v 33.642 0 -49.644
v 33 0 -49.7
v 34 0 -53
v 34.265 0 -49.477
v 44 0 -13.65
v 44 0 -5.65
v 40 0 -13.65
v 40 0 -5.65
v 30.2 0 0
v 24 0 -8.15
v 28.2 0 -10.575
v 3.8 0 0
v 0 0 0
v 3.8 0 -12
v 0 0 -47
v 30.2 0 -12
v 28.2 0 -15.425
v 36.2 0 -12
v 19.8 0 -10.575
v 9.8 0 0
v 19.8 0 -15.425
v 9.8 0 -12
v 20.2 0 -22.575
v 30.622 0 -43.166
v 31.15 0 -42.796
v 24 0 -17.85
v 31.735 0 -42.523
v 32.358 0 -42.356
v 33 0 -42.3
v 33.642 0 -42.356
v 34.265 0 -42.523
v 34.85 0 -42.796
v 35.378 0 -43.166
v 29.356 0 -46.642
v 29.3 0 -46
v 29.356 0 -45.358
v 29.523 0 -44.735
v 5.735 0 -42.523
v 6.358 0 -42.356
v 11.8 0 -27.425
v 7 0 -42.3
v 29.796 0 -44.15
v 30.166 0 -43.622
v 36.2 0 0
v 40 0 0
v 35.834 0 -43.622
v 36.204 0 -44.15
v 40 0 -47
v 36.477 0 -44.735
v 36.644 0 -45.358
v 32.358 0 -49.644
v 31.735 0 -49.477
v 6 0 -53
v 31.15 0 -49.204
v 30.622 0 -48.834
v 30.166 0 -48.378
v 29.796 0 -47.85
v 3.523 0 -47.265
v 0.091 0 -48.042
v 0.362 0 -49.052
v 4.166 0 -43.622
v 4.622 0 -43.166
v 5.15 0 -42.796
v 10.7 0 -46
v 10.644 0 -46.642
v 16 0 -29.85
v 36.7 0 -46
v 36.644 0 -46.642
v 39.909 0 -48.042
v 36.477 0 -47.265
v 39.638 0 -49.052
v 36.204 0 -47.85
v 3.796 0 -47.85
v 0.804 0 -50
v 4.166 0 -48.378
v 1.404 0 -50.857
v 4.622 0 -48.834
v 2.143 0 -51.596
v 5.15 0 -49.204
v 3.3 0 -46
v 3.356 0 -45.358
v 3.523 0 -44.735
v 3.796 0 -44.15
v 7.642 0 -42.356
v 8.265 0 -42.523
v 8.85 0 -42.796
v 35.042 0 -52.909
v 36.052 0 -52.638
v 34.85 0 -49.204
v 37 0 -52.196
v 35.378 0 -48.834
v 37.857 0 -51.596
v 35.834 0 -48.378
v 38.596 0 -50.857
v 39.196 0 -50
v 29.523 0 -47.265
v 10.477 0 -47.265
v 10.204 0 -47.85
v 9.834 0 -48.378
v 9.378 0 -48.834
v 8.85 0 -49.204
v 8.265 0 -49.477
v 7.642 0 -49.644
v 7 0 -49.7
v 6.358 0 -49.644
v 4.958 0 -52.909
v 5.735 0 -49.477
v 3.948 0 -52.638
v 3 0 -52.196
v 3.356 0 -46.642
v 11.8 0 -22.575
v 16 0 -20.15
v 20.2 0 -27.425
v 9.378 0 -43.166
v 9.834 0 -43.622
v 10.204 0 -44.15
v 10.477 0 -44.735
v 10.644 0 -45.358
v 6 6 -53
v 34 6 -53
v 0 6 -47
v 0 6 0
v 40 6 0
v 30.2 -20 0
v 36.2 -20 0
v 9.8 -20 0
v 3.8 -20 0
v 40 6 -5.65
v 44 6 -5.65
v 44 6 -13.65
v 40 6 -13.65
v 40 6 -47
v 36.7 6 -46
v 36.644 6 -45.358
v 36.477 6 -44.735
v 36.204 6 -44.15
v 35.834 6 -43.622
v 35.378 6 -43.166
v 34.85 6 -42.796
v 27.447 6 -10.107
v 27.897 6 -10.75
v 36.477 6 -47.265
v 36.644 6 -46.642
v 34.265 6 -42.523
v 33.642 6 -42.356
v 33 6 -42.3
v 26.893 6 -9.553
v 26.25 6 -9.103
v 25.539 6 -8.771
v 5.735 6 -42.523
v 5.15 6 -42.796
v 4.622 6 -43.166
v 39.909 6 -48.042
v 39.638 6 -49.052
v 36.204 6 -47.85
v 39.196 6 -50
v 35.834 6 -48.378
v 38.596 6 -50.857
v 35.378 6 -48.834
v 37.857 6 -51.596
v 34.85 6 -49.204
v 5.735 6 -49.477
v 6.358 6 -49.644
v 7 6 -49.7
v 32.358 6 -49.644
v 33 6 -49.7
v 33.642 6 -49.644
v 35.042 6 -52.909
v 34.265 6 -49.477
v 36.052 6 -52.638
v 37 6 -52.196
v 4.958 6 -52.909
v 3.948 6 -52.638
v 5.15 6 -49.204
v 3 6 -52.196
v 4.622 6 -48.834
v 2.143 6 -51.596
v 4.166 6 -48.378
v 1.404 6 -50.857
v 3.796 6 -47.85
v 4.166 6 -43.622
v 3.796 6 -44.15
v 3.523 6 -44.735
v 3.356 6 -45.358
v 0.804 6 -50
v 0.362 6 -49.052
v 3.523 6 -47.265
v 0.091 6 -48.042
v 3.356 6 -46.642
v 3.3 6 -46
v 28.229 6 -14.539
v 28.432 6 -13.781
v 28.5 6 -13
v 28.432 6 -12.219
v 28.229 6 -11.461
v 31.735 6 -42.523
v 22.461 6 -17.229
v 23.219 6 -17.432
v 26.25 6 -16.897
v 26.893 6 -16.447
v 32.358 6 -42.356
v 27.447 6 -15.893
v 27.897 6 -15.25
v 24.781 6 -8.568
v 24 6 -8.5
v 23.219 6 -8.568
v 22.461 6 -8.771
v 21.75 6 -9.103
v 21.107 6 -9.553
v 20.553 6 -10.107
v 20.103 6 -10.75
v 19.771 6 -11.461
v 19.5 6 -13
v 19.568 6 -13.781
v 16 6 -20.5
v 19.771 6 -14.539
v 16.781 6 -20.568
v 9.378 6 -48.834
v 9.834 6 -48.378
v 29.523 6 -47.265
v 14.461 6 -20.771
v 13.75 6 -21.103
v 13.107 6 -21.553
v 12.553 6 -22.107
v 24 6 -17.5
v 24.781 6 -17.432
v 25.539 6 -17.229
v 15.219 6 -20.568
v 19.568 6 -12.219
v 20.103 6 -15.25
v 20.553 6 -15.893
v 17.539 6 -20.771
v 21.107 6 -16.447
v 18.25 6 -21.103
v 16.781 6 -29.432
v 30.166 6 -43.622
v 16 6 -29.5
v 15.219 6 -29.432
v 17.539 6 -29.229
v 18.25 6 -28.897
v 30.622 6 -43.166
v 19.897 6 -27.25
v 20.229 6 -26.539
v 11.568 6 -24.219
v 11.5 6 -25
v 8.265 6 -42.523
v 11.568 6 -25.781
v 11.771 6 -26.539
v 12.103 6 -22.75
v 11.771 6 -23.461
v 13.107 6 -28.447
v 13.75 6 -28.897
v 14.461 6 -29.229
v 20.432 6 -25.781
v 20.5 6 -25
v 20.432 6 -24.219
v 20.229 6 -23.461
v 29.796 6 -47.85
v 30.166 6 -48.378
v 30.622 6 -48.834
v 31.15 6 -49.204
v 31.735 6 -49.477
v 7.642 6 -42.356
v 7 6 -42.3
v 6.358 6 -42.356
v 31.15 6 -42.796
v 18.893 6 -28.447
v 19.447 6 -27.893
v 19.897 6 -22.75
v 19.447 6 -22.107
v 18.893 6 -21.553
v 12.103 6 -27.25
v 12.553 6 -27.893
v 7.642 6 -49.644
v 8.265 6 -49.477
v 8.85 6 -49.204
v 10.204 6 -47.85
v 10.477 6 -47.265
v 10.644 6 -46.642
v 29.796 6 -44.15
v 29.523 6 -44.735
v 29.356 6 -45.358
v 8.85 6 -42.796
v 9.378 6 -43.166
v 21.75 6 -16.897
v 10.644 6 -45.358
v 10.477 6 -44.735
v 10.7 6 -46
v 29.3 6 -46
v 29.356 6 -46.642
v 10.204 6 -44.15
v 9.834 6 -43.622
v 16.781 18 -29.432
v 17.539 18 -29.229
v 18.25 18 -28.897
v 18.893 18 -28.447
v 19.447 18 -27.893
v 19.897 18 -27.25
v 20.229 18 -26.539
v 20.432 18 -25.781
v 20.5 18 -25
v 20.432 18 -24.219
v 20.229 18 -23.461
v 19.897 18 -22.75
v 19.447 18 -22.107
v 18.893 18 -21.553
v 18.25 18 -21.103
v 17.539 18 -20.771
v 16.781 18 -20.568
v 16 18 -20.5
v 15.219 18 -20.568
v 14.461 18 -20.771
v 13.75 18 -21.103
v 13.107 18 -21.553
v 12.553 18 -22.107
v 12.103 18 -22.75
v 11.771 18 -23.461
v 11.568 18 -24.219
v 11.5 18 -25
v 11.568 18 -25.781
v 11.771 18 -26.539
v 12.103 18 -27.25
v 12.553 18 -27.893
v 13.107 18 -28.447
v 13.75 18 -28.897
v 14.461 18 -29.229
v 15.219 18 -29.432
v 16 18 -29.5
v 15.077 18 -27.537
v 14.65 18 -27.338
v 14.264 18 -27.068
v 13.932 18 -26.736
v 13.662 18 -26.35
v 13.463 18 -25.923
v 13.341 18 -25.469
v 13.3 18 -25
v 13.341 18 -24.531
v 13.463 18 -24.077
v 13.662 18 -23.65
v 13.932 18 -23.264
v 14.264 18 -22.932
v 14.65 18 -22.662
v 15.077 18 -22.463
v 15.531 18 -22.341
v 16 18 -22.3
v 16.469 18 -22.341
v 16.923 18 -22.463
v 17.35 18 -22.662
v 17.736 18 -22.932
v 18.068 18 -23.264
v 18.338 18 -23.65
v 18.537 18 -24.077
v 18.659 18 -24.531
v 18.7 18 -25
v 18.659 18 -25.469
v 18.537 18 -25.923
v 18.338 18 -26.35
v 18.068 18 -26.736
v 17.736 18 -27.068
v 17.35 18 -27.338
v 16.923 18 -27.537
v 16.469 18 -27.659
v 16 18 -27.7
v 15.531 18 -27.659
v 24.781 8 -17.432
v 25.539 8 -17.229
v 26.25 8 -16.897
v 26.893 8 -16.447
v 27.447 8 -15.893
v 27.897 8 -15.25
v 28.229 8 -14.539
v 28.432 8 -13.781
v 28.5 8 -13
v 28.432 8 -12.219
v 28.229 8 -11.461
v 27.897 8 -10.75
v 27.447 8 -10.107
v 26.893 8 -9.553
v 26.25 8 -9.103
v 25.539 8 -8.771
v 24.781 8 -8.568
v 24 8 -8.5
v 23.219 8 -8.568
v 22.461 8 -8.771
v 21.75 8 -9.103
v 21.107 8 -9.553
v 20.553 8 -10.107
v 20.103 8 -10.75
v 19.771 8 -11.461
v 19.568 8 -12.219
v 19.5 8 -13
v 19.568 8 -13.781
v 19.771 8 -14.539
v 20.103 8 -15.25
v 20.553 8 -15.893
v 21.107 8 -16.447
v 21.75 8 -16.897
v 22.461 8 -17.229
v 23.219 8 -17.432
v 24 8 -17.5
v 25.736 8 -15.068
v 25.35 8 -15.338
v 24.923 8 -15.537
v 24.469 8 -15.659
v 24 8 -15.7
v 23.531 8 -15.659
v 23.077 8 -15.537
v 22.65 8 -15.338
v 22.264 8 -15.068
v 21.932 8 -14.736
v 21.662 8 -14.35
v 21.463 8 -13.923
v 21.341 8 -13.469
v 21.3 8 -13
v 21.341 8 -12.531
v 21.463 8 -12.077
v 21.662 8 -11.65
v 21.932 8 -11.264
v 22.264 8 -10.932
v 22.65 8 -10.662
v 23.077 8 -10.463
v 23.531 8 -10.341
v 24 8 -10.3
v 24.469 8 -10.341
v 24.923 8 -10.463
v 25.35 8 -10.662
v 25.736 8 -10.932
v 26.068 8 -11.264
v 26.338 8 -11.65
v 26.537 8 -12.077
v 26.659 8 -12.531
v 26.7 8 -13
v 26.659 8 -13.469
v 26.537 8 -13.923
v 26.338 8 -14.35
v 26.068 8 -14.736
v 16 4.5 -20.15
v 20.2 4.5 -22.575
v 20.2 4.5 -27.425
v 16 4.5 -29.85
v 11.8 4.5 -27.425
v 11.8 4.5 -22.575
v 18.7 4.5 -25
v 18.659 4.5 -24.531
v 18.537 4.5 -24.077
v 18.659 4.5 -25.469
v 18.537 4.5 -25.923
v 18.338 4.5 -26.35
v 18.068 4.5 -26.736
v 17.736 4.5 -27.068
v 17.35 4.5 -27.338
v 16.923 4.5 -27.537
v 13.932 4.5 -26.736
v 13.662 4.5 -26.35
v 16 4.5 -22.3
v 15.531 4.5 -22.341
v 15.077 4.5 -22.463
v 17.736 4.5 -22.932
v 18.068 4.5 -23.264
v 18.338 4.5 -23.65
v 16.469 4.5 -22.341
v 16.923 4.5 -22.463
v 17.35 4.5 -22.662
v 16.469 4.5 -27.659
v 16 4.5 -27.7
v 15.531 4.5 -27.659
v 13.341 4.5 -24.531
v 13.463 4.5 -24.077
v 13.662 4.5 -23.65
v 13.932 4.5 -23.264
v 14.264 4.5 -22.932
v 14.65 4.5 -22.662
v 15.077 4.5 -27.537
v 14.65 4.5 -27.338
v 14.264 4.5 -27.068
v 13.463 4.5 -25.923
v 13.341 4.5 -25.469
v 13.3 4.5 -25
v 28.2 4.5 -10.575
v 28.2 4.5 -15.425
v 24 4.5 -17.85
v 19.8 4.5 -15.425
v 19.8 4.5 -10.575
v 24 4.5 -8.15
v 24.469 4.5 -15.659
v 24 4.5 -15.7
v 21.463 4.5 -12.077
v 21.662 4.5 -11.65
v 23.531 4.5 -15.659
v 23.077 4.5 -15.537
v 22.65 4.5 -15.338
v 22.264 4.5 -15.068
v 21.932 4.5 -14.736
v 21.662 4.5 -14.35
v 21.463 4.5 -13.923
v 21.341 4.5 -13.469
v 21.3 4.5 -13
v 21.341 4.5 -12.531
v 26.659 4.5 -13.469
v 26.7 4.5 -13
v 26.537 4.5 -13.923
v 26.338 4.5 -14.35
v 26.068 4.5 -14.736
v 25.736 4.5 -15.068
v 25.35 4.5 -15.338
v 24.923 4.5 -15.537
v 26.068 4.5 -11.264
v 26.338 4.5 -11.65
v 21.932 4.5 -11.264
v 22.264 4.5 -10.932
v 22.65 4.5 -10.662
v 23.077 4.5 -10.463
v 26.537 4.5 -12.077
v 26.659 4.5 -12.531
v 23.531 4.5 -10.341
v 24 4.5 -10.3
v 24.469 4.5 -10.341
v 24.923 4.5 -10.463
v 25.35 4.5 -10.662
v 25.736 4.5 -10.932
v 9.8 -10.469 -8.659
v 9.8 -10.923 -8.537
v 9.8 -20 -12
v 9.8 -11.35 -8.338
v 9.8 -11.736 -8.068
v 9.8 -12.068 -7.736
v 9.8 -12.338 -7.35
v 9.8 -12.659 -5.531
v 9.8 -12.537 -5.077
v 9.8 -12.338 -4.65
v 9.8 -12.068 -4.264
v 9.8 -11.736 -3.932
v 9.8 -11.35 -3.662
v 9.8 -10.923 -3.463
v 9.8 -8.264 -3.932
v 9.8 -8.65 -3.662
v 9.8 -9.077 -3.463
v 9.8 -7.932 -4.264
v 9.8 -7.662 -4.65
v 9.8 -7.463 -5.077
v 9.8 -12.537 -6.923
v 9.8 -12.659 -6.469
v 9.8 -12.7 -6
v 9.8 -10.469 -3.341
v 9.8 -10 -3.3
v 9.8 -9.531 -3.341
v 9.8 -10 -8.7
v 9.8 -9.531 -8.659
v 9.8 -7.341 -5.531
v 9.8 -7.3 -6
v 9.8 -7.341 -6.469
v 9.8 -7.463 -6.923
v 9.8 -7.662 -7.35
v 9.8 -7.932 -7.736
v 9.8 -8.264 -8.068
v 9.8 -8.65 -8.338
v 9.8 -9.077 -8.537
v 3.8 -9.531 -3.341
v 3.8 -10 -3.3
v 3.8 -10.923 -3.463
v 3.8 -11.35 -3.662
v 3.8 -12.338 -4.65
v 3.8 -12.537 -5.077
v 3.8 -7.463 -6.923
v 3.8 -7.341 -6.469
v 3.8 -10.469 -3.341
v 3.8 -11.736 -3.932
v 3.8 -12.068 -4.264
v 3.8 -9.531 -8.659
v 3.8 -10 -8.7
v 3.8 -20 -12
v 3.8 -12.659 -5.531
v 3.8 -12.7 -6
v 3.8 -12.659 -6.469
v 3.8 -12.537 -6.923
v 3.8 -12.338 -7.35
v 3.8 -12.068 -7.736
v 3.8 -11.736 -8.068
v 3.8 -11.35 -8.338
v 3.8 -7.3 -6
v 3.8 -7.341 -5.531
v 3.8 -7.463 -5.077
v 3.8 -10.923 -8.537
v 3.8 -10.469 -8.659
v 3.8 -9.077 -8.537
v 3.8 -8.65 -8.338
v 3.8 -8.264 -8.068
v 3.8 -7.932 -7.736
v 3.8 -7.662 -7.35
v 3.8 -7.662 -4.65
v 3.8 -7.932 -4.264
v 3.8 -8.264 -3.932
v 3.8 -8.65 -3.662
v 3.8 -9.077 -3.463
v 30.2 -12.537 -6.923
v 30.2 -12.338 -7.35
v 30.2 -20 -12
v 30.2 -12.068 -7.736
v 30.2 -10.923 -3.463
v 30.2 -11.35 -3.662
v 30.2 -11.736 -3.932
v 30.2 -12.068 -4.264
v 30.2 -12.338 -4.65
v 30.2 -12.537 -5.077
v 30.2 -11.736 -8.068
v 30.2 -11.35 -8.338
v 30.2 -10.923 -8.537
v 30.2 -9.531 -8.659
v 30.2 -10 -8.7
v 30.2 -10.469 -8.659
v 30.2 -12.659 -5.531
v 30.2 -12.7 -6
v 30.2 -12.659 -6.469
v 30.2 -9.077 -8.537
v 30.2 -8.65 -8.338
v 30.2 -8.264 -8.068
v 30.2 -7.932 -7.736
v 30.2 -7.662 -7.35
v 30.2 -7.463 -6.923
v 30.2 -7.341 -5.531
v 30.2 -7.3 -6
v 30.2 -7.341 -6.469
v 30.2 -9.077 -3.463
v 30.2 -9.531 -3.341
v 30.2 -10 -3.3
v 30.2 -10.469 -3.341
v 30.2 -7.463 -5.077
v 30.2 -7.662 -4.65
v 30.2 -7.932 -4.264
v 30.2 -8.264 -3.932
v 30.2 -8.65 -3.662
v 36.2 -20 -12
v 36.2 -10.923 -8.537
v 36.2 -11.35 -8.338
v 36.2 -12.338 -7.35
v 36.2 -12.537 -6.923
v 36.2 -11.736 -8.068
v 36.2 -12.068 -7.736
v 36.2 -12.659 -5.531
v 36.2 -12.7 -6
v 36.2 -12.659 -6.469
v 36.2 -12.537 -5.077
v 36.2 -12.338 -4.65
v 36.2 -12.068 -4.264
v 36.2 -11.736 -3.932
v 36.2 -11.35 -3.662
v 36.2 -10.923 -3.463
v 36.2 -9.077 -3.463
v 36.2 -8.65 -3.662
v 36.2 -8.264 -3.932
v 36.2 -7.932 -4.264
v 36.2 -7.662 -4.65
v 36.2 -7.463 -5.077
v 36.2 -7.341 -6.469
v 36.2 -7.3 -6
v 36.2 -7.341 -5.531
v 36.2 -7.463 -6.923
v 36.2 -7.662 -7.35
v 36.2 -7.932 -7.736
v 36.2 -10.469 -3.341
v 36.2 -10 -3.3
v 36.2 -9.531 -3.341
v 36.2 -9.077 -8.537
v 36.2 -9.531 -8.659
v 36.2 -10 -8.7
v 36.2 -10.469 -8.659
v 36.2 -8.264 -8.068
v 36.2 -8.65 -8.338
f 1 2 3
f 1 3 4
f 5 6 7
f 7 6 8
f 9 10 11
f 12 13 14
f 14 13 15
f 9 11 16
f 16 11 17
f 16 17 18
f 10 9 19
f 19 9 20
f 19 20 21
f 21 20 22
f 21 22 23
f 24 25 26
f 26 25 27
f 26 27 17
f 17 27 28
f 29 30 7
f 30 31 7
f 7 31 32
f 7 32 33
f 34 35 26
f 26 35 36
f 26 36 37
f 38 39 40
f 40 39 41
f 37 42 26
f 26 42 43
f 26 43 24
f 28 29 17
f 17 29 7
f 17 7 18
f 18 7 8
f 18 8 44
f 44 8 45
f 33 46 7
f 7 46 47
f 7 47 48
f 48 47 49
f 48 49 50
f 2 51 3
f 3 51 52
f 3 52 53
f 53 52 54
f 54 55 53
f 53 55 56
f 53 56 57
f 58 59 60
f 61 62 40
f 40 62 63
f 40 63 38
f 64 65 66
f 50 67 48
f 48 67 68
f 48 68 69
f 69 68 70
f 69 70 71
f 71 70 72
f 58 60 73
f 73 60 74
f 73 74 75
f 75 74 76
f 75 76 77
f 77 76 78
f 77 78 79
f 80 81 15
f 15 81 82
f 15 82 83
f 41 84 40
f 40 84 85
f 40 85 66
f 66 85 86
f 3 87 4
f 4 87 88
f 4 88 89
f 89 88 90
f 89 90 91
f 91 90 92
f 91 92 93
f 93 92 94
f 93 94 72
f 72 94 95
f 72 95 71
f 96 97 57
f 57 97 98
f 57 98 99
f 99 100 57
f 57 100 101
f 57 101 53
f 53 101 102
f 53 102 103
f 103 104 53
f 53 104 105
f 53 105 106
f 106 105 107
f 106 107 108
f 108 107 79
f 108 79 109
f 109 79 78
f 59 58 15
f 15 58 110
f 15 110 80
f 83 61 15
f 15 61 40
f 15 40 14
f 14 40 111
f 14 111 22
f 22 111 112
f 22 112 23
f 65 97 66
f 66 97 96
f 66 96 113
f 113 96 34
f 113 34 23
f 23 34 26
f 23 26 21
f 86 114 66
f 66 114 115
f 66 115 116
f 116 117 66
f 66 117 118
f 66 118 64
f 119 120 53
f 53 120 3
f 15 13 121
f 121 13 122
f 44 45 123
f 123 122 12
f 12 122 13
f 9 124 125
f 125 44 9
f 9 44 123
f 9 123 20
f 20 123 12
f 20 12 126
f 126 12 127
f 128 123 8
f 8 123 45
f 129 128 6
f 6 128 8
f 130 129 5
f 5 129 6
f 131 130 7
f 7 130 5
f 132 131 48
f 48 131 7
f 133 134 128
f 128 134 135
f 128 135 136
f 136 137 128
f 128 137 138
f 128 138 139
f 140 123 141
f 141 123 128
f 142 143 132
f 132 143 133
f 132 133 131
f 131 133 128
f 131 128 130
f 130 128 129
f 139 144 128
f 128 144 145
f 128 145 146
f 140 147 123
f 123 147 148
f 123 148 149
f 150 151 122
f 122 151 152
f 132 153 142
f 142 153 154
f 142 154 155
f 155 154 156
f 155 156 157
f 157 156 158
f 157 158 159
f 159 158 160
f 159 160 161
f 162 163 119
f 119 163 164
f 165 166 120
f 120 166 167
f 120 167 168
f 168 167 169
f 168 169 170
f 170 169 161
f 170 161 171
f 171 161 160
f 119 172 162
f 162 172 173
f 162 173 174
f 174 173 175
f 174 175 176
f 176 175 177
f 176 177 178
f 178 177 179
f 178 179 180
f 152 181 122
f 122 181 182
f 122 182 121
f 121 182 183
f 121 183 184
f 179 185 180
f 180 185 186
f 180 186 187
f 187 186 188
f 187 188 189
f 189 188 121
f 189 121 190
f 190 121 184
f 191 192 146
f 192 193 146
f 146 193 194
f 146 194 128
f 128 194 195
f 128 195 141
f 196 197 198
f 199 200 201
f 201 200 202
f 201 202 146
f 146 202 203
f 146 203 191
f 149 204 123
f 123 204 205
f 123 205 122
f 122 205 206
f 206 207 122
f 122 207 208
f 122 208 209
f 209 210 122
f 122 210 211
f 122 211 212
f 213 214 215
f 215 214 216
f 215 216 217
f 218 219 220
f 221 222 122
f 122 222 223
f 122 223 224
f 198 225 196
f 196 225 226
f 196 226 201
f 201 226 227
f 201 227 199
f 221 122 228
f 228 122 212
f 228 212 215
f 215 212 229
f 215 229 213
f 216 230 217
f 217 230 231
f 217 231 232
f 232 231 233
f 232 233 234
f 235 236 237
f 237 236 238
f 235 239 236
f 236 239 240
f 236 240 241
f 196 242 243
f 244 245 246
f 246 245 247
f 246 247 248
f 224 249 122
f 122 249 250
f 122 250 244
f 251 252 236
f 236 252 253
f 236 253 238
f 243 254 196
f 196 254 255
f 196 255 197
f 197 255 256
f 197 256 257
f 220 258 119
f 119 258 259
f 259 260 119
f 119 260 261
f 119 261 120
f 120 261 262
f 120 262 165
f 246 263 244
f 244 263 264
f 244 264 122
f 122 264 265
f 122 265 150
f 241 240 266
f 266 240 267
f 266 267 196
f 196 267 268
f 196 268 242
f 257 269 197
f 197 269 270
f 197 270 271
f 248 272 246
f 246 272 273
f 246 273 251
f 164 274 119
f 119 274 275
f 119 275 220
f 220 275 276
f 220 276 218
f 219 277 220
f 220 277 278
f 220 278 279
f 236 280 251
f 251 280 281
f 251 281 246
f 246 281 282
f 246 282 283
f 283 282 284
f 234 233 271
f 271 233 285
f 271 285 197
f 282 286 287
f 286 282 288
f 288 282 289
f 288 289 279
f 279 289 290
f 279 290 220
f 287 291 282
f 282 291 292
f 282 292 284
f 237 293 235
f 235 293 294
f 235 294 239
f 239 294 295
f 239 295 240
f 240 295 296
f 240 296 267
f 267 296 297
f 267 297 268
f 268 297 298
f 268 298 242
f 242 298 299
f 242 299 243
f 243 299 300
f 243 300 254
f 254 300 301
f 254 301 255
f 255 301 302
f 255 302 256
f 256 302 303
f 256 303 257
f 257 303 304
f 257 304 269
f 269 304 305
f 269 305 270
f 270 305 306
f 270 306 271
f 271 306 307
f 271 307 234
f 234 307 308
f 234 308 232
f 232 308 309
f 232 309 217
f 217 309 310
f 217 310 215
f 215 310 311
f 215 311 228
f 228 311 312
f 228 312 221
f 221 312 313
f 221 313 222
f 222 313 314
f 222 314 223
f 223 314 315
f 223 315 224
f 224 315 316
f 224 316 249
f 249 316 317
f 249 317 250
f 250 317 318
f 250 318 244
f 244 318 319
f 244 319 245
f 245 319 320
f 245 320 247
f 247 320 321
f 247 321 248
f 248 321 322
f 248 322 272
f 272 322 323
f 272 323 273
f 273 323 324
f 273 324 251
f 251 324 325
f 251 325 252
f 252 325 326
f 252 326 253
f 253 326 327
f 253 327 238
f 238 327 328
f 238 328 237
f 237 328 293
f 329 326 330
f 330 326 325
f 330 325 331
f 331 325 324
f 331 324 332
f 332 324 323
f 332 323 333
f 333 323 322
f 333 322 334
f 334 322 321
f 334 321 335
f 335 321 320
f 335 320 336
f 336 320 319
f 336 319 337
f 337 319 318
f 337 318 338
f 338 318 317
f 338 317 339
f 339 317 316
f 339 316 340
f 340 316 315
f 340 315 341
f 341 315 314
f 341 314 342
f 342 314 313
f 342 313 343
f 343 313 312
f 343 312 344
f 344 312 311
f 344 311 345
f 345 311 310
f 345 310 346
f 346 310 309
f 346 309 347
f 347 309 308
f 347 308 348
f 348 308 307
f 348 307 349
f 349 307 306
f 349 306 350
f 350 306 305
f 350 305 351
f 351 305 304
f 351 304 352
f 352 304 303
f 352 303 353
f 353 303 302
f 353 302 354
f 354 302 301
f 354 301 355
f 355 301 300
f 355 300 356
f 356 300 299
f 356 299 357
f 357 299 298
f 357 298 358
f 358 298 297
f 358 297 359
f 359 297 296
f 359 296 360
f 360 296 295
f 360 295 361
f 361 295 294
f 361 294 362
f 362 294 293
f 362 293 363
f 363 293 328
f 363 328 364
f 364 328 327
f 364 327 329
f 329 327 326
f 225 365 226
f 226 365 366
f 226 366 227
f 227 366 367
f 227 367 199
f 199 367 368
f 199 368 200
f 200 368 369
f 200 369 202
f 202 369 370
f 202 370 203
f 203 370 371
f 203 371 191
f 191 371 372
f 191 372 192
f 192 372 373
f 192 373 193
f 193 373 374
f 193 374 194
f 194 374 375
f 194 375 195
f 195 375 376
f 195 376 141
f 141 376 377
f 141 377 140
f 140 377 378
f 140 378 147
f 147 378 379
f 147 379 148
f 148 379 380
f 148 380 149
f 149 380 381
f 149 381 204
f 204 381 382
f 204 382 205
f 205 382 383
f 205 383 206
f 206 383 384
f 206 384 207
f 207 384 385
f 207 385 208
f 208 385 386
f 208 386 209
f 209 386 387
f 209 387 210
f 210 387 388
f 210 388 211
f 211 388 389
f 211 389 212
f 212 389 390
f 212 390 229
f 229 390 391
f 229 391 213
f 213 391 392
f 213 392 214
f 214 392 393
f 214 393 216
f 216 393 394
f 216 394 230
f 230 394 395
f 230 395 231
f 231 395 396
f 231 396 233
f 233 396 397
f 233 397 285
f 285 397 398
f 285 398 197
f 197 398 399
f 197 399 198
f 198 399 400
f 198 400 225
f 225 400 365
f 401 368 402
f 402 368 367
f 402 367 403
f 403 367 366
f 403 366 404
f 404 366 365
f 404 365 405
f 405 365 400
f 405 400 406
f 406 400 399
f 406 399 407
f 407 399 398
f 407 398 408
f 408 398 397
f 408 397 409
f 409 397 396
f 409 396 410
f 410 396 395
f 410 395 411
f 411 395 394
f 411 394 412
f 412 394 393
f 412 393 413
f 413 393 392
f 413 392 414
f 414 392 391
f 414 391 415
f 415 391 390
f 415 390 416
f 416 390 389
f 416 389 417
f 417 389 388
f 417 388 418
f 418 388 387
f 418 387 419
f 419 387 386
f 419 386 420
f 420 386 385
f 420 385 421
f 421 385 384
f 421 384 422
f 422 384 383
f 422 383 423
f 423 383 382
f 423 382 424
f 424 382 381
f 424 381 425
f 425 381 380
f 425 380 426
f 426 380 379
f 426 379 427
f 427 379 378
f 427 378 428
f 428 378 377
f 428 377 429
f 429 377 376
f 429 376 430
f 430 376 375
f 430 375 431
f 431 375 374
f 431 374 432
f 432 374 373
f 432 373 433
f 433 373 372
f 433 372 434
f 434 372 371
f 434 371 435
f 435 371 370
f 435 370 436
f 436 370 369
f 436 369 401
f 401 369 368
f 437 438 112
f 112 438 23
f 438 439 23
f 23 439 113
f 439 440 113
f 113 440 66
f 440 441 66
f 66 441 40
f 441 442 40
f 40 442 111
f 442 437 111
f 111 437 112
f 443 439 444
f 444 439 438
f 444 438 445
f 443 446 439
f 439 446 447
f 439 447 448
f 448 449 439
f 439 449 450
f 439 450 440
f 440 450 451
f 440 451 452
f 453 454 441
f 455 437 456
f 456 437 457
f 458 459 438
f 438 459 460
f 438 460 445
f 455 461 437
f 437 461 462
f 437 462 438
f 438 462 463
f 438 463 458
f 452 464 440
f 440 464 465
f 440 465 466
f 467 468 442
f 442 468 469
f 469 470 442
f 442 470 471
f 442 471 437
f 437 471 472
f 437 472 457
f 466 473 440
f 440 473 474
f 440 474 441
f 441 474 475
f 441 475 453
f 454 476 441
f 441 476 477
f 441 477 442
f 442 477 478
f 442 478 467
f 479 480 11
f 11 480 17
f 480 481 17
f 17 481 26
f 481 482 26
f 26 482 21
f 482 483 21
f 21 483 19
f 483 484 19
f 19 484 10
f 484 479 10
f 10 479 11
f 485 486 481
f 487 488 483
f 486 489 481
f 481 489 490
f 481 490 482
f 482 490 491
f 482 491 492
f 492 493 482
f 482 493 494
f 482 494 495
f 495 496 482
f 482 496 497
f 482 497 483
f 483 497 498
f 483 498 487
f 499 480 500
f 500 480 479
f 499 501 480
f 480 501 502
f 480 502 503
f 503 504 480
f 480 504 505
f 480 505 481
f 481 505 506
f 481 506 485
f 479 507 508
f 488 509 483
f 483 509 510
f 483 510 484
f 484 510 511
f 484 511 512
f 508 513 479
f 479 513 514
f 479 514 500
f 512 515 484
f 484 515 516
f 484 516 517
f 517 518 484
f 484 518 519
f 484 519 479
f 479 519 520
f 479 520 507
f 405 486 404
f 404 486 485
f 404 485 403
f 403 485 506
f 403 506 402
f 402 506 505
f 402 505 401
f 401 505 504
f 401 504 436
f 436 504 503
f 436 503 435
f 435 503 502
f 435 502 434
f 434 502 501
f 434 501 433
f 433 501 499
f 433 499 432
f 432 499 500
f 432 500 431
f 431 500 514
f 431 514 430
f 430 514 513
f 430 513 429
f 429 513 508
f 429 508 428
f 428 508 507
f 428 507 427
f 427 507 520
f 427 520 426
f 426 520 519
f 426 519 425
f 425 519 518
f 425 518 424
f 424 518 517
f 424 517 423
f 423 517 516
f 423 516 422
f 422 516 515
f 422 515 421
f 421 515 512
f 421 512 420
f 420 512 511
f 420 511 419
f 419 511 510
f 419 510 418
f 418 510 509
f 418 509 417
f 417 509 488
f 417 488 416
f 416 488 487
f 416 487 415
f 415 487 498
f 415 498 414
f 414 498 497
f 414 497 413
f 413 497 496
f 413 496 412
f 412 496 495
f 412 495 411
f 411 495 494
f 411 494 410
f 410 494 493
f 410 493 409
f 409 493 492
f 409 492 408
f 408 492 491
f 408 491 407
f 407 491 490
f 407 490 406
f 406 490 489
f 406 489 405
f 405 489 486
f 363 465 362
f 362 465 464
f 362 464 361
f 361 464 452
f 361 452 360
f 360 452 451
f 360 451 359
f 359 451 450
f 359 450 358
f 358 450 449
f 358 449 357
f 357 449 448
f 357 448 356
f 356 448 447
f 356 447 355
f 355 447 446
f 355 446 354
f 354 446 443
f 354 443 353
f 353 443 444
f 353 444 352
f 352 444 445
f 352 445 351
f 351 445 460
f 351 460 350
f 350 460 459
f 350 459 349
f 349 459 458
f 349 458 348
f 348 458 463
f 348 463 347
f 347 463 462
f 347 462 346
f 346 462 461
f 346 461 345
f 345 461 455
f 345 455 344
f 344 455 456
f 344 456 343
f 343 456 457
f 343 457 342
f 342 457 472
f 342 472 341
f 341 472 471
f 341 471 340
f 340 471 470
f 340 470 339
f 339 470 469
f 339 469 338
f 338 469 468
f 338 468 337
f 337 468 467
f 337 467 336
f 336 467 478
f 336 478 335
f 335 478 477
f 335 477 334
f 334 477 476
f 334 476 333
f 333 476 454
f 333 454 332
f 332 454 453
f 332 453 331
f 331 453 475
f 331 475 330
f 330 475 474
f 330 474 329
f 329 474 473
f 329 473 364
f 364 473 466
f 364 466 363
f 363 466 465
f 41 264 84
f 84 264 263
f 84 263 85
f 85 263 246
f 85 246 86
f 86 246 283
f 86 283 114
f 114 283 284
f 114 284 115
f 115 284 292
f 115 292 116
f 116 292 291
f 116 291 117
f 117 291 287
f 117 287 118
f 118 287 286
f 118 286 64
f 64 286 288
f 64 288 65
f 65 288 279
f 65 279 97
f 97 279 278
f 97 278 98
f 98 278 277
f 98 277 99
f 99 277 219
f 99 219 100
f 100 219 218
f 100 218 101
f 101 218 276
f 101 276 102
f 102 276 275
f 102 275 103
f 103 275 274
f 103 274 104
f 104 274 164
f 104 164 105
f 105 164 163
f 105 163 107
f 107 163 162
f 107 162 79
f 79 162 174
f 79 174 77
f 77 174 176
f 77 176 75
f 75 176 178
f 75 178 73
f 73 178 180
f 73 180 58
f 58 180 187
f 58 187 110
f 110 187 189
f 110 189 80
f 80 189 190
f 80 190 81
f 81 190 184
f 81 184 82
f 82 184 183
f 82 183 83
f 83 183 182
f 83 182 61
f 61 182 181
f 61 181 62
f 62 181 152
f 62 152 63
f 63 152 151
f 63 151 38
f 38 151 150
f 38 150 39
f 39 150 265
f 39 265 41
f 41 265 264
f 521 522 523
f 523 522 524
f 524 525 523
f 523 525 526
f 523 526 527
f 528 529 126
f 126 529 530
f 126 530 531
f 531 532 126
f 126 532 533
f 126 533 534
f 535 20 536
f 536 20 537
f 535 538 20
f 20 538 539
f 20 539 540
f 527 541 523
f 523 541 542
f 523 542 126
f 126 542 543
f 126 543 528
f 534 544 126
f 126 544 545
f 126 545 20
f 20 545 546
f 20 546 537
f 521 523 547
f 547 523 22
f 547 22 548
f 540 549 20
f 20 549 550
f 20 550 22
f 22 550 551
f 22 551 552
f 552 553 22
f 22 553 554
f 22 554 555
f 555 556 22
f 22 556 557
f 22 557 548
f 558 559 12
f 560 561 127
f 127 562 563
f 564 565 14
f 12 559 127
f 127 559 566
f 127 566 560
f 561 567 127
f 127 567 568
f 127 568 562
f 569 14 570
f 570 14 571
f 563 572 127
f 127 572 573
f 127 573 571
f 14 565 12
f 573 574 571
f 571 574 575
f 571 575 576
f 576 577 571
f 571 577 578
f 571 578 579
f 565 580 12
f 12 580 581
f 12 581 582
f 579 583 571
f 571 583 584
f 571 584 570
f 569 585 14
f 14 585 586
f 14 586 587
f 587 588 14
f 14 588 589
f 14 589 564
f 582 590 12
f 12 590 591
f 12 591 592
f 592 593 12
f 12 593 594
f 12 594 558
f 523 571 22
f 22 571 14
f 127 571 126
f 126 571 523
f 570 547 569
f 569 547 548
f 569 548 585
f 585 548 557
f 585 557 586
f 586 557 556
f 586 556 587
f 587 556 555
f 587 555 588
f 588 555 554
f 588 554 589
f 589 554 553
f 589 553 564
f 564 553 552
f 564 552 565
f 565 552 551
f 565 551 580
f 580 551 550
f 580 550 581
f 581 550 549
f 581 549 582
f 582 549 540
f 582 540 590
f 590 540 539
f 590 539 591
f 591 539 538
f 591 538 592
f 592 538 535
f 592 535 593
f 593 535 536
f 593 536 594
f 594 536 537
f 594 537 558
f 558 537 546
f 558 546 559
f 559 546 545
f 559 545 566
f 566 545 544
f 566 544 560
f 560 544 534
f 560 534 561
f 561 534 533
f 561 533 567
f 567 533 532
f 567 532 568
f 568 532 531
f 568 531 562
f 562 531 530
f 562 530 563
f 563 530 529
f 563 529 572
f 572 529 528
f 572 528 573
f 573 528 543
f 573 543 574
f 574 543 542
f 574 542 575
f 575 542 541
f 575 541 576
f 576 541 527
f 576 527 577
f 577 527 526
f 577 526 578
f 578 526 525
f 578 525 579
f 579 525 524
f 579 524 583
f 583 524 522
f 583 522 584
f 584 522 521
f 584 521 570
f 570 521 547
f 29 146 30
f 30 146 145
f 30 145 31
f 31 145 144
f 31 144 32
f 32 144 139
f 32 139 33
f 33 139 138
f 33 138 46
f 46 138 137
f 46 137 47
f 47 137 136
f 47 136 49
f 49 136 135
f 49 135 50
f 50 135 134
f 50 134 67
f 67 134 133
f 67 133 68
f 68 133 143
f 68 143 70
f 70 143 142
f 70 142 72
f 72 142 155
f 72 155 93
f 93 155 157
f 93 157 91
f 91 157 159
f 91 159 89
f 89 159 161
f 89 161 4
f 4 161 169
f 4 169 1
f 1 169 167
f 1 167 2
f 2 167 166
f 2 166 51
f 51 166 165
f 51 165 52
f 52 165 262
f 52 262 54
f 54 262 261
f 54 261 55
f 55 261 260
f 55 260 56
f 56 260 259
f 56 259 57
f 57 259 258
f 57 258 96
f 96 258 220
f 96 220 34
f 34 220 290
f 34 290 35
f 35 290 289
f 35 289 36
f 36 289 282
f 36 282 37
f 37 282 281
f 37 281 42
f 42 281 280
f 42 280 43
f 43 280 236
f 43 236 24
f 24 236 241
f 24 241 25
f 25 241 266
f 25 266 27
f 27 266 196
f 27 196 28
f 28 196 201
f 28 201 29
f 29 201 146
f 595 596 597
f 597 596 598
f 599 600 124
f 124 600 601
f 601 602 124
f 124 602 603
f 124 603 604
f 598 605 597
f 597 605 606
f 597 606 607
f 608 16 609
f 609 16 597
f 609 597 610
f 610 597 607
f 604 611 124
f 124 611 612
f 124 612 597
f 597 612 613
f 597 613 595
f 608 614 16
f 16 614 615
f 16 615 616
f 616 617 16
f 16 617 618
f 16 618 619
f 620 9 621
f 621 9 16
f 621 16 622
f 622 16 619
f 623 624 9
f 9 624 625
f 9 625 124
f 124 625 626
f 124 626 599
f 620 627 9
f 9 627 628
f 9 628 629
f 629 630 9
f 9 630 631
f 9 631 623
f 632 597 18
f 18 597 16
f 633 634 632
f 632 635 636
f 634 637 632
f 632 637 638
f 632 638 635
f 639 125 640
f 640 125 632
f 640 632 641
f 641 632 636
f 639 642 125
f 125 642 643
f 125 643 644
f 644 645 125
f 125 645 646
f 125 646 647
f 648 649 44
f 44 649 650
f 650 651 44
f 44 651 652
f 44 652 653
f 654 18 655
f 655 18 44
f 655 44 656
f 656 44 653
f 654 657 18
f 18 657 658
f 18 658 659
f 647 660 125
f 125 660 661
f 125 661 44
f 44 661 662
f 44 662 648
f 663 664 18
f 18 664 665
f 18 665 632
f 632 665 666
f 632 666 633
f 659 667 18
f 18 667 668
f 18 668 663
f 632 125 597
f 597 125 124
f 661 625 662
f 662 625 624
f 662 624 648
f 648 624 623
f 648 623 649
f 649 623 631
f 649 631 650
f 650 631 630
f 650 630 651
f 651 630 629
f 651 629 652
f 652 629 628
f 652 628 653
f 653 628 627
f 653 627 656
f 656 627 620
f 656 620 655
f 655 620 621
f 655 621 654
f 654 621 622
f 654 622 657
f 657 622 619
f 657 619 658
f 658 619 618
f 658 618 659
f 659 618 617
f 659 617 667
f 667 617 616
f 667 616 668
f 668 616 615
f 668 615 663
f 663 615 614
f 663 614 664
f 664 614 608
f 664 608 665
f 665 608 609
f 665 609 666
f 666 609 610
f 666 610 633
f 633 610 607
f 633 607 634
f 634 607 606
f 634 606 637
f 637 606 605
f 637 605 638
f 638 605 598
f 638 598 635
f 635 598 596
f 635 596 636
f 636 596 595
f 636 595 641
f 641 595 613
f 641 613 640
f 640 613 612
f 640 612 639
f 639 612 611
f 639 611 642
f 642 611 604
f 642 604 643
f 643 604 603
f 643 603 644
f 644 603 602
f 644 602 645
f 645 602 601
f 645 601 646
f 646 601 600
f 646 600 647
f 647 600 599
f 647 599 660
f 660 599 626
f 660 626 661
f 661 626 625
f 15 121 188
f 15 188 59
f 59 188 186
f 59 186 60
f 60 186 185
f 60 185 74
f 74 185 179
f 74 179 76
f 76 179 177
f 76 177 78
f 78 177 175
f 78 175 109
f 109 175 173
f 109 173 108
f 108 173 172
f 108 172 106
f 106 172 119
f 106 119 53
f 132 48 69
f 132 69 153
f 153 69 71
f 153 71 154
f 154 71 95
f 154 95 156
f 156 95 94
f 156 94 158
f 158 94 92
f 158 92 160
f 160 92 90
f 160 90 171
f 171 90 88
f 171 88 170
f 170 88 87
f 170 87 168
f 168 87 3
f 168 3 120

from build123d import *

# Parameters (mm, degrees)
BOSS_EXTRUDE1_DEPTH   = 6
SKETCH16_R            = 4.5
BOSS_EXTRUDE3_DEPTH   = 12
SKETCH16_3_R          = 4.5
BOSS_EXTRUDE4_DEPTH   = 2
CUT_EXTRUDE1_DEPTH    = 4.5
F_5_4MM_DOWEL_HOLE1_D = 5.4
F_7_4MM_DOWEL_HOLE2_D = 7.4
SKETCH2_W             = 6
SKETCH2_H             = 12
BOSS_EXTRUDE2_DEPTH   = 20
F_5_4MM_DOWEL_HOLE3_D = 5.4
FILLET1_R             = 6


with BuildPart() as part:
    # Sketch1 → Boss-Extrude1 (new body)
    with BuildSketch(Plane(origin=(0, 0, 0), x_dir=(1, 0, 0), z_dir=(0, 1, 0))):
        Polygon((40, 5.65), (40, 0), (0, 0), (0, 53), (40, 53), (40, 13.65), (44, 13.65), (44, 5.65), align=None)
    extrude(amount=BOSS_EXTRUDE1_DEPTH)

    # Sketch16 → Boss-Extrude3 (add)
    with BuildSketch(Plane(origin=(0, 6, 0), x_dir=(1, 0, 0), z_dir=(0, 1, 0))):
        with Locations((16, 25)):
            Circle(SKETCH16_R)
    extrude(amount=BOSS_EXTRUDE3_DEPTH)

    # Sketch16<3> → Boss-Extrude4 (add)
    with BuildSketch(Plane(origin=(0, 6, 0), x_dir=(1, 0, 0), z_dir=(0, 1, 0))):
        with Locations((24, 13)):
            Circle(SKETCH16_3_R)
    extrude(amount=BOSS_EXTRUDE4_DEPTH)

    # Sketch12 → Cut-Extrude1 (cut)
    with BuildSketch(Plane.XZ):
        Polygon((28.2, -10.575128869), (24, -8.150257739), (19.8, -10.575128869), (19.8, -15.424871131), (24, -17.849742261), (28.2, -15.424871131), align=None)
        Polygon((16, -20.150257739), (11.8, -22.575128869), (11.8, -27.424871131), (16, -29.849742261), (20.2, -27.424871131), (20.2, -22.575128869), align=None)
    extrude(amount=-CUT_EXTRUDE1_DEPTH, mode=Mode.SUBTRACT)

    # Ø5.4mm Dowel Hole1 (through all)
    with Locations(Plane(origin=(0, 0, 0), x_dir=(-1, 0, 0), z_dir=(0, -1, 0))):
        with Locations((-16, 25), (-24, 13)):
            Hole(F_5_4MM_DOWEL_HOLE1_D / 2)

    # Ø7.4mm Dowel Hole2 (through all)
    with Locations(Plane(origin=(0, 6, 0), x_dir=(1, 0, 0), z_dir=(0, 1, 0))):
        with Locations((7, 46)):
            f_7_4mm_dowel_hole2 = Hole(F_7_4MM_DOWEL_HOLE2_D / 2)

    # Sketch2 → Boss-Extrude2 (add)
    with BuildSketch(Plane.XZ):
        with Locations((6.8, -6)):
            Rectangle(SKETCH2_W, SKETCH2_H)
    boss_extrude2 = extrude(amount=BOSS_EXTRUDE2_DEPTH)

    # Ø5.4mm Dowel Hole3 (through all)
    with Locations(Plane(origin=(9.8, 0, 0), x_dir=(0, 0, -1), z_dir=(1, 0, 0))):
        with Locations((6, -10)):
            f_5_4mm_dowel_hole3 = Hole(F_5_4MM_DOWEL_HOLE3_D / 2)

    # Mirror1: Ø7.4mm Dowel Hole2, Boss-Extrude2, Ø5.4mm Dowel Hole3 across plane
    add(f_7_4mm_dowel_hole2.mirror(Plane(origin=(20, 0, 0), x_dir=(0, 0, 1), z_dir=(1, 0, 0))), mode=Mode.SUBTRACT)
    add(boss_extrude2.mirror(Plane(origin=(20, 0, 0), x_dir=(0, 0, 1), z_dir=(1, 0, 0))))
    add(f_5_4mm_dowel_hole3.mirror(Plane(origin=(20, 0, 0), x_dir=(0, 0, 1), z_dir=(1, 0, 0))), mode=Mode.SUBTRACT)

    # Fillet1
    fillet1_edges = [part.edges().sort_by_distance(p)[0] for p in [
        (0, 3, -53),
        (40, 3, -53),
    ]]
    fillet(fillet1_edges, radius=FILLET1_R)


solid = part.part
